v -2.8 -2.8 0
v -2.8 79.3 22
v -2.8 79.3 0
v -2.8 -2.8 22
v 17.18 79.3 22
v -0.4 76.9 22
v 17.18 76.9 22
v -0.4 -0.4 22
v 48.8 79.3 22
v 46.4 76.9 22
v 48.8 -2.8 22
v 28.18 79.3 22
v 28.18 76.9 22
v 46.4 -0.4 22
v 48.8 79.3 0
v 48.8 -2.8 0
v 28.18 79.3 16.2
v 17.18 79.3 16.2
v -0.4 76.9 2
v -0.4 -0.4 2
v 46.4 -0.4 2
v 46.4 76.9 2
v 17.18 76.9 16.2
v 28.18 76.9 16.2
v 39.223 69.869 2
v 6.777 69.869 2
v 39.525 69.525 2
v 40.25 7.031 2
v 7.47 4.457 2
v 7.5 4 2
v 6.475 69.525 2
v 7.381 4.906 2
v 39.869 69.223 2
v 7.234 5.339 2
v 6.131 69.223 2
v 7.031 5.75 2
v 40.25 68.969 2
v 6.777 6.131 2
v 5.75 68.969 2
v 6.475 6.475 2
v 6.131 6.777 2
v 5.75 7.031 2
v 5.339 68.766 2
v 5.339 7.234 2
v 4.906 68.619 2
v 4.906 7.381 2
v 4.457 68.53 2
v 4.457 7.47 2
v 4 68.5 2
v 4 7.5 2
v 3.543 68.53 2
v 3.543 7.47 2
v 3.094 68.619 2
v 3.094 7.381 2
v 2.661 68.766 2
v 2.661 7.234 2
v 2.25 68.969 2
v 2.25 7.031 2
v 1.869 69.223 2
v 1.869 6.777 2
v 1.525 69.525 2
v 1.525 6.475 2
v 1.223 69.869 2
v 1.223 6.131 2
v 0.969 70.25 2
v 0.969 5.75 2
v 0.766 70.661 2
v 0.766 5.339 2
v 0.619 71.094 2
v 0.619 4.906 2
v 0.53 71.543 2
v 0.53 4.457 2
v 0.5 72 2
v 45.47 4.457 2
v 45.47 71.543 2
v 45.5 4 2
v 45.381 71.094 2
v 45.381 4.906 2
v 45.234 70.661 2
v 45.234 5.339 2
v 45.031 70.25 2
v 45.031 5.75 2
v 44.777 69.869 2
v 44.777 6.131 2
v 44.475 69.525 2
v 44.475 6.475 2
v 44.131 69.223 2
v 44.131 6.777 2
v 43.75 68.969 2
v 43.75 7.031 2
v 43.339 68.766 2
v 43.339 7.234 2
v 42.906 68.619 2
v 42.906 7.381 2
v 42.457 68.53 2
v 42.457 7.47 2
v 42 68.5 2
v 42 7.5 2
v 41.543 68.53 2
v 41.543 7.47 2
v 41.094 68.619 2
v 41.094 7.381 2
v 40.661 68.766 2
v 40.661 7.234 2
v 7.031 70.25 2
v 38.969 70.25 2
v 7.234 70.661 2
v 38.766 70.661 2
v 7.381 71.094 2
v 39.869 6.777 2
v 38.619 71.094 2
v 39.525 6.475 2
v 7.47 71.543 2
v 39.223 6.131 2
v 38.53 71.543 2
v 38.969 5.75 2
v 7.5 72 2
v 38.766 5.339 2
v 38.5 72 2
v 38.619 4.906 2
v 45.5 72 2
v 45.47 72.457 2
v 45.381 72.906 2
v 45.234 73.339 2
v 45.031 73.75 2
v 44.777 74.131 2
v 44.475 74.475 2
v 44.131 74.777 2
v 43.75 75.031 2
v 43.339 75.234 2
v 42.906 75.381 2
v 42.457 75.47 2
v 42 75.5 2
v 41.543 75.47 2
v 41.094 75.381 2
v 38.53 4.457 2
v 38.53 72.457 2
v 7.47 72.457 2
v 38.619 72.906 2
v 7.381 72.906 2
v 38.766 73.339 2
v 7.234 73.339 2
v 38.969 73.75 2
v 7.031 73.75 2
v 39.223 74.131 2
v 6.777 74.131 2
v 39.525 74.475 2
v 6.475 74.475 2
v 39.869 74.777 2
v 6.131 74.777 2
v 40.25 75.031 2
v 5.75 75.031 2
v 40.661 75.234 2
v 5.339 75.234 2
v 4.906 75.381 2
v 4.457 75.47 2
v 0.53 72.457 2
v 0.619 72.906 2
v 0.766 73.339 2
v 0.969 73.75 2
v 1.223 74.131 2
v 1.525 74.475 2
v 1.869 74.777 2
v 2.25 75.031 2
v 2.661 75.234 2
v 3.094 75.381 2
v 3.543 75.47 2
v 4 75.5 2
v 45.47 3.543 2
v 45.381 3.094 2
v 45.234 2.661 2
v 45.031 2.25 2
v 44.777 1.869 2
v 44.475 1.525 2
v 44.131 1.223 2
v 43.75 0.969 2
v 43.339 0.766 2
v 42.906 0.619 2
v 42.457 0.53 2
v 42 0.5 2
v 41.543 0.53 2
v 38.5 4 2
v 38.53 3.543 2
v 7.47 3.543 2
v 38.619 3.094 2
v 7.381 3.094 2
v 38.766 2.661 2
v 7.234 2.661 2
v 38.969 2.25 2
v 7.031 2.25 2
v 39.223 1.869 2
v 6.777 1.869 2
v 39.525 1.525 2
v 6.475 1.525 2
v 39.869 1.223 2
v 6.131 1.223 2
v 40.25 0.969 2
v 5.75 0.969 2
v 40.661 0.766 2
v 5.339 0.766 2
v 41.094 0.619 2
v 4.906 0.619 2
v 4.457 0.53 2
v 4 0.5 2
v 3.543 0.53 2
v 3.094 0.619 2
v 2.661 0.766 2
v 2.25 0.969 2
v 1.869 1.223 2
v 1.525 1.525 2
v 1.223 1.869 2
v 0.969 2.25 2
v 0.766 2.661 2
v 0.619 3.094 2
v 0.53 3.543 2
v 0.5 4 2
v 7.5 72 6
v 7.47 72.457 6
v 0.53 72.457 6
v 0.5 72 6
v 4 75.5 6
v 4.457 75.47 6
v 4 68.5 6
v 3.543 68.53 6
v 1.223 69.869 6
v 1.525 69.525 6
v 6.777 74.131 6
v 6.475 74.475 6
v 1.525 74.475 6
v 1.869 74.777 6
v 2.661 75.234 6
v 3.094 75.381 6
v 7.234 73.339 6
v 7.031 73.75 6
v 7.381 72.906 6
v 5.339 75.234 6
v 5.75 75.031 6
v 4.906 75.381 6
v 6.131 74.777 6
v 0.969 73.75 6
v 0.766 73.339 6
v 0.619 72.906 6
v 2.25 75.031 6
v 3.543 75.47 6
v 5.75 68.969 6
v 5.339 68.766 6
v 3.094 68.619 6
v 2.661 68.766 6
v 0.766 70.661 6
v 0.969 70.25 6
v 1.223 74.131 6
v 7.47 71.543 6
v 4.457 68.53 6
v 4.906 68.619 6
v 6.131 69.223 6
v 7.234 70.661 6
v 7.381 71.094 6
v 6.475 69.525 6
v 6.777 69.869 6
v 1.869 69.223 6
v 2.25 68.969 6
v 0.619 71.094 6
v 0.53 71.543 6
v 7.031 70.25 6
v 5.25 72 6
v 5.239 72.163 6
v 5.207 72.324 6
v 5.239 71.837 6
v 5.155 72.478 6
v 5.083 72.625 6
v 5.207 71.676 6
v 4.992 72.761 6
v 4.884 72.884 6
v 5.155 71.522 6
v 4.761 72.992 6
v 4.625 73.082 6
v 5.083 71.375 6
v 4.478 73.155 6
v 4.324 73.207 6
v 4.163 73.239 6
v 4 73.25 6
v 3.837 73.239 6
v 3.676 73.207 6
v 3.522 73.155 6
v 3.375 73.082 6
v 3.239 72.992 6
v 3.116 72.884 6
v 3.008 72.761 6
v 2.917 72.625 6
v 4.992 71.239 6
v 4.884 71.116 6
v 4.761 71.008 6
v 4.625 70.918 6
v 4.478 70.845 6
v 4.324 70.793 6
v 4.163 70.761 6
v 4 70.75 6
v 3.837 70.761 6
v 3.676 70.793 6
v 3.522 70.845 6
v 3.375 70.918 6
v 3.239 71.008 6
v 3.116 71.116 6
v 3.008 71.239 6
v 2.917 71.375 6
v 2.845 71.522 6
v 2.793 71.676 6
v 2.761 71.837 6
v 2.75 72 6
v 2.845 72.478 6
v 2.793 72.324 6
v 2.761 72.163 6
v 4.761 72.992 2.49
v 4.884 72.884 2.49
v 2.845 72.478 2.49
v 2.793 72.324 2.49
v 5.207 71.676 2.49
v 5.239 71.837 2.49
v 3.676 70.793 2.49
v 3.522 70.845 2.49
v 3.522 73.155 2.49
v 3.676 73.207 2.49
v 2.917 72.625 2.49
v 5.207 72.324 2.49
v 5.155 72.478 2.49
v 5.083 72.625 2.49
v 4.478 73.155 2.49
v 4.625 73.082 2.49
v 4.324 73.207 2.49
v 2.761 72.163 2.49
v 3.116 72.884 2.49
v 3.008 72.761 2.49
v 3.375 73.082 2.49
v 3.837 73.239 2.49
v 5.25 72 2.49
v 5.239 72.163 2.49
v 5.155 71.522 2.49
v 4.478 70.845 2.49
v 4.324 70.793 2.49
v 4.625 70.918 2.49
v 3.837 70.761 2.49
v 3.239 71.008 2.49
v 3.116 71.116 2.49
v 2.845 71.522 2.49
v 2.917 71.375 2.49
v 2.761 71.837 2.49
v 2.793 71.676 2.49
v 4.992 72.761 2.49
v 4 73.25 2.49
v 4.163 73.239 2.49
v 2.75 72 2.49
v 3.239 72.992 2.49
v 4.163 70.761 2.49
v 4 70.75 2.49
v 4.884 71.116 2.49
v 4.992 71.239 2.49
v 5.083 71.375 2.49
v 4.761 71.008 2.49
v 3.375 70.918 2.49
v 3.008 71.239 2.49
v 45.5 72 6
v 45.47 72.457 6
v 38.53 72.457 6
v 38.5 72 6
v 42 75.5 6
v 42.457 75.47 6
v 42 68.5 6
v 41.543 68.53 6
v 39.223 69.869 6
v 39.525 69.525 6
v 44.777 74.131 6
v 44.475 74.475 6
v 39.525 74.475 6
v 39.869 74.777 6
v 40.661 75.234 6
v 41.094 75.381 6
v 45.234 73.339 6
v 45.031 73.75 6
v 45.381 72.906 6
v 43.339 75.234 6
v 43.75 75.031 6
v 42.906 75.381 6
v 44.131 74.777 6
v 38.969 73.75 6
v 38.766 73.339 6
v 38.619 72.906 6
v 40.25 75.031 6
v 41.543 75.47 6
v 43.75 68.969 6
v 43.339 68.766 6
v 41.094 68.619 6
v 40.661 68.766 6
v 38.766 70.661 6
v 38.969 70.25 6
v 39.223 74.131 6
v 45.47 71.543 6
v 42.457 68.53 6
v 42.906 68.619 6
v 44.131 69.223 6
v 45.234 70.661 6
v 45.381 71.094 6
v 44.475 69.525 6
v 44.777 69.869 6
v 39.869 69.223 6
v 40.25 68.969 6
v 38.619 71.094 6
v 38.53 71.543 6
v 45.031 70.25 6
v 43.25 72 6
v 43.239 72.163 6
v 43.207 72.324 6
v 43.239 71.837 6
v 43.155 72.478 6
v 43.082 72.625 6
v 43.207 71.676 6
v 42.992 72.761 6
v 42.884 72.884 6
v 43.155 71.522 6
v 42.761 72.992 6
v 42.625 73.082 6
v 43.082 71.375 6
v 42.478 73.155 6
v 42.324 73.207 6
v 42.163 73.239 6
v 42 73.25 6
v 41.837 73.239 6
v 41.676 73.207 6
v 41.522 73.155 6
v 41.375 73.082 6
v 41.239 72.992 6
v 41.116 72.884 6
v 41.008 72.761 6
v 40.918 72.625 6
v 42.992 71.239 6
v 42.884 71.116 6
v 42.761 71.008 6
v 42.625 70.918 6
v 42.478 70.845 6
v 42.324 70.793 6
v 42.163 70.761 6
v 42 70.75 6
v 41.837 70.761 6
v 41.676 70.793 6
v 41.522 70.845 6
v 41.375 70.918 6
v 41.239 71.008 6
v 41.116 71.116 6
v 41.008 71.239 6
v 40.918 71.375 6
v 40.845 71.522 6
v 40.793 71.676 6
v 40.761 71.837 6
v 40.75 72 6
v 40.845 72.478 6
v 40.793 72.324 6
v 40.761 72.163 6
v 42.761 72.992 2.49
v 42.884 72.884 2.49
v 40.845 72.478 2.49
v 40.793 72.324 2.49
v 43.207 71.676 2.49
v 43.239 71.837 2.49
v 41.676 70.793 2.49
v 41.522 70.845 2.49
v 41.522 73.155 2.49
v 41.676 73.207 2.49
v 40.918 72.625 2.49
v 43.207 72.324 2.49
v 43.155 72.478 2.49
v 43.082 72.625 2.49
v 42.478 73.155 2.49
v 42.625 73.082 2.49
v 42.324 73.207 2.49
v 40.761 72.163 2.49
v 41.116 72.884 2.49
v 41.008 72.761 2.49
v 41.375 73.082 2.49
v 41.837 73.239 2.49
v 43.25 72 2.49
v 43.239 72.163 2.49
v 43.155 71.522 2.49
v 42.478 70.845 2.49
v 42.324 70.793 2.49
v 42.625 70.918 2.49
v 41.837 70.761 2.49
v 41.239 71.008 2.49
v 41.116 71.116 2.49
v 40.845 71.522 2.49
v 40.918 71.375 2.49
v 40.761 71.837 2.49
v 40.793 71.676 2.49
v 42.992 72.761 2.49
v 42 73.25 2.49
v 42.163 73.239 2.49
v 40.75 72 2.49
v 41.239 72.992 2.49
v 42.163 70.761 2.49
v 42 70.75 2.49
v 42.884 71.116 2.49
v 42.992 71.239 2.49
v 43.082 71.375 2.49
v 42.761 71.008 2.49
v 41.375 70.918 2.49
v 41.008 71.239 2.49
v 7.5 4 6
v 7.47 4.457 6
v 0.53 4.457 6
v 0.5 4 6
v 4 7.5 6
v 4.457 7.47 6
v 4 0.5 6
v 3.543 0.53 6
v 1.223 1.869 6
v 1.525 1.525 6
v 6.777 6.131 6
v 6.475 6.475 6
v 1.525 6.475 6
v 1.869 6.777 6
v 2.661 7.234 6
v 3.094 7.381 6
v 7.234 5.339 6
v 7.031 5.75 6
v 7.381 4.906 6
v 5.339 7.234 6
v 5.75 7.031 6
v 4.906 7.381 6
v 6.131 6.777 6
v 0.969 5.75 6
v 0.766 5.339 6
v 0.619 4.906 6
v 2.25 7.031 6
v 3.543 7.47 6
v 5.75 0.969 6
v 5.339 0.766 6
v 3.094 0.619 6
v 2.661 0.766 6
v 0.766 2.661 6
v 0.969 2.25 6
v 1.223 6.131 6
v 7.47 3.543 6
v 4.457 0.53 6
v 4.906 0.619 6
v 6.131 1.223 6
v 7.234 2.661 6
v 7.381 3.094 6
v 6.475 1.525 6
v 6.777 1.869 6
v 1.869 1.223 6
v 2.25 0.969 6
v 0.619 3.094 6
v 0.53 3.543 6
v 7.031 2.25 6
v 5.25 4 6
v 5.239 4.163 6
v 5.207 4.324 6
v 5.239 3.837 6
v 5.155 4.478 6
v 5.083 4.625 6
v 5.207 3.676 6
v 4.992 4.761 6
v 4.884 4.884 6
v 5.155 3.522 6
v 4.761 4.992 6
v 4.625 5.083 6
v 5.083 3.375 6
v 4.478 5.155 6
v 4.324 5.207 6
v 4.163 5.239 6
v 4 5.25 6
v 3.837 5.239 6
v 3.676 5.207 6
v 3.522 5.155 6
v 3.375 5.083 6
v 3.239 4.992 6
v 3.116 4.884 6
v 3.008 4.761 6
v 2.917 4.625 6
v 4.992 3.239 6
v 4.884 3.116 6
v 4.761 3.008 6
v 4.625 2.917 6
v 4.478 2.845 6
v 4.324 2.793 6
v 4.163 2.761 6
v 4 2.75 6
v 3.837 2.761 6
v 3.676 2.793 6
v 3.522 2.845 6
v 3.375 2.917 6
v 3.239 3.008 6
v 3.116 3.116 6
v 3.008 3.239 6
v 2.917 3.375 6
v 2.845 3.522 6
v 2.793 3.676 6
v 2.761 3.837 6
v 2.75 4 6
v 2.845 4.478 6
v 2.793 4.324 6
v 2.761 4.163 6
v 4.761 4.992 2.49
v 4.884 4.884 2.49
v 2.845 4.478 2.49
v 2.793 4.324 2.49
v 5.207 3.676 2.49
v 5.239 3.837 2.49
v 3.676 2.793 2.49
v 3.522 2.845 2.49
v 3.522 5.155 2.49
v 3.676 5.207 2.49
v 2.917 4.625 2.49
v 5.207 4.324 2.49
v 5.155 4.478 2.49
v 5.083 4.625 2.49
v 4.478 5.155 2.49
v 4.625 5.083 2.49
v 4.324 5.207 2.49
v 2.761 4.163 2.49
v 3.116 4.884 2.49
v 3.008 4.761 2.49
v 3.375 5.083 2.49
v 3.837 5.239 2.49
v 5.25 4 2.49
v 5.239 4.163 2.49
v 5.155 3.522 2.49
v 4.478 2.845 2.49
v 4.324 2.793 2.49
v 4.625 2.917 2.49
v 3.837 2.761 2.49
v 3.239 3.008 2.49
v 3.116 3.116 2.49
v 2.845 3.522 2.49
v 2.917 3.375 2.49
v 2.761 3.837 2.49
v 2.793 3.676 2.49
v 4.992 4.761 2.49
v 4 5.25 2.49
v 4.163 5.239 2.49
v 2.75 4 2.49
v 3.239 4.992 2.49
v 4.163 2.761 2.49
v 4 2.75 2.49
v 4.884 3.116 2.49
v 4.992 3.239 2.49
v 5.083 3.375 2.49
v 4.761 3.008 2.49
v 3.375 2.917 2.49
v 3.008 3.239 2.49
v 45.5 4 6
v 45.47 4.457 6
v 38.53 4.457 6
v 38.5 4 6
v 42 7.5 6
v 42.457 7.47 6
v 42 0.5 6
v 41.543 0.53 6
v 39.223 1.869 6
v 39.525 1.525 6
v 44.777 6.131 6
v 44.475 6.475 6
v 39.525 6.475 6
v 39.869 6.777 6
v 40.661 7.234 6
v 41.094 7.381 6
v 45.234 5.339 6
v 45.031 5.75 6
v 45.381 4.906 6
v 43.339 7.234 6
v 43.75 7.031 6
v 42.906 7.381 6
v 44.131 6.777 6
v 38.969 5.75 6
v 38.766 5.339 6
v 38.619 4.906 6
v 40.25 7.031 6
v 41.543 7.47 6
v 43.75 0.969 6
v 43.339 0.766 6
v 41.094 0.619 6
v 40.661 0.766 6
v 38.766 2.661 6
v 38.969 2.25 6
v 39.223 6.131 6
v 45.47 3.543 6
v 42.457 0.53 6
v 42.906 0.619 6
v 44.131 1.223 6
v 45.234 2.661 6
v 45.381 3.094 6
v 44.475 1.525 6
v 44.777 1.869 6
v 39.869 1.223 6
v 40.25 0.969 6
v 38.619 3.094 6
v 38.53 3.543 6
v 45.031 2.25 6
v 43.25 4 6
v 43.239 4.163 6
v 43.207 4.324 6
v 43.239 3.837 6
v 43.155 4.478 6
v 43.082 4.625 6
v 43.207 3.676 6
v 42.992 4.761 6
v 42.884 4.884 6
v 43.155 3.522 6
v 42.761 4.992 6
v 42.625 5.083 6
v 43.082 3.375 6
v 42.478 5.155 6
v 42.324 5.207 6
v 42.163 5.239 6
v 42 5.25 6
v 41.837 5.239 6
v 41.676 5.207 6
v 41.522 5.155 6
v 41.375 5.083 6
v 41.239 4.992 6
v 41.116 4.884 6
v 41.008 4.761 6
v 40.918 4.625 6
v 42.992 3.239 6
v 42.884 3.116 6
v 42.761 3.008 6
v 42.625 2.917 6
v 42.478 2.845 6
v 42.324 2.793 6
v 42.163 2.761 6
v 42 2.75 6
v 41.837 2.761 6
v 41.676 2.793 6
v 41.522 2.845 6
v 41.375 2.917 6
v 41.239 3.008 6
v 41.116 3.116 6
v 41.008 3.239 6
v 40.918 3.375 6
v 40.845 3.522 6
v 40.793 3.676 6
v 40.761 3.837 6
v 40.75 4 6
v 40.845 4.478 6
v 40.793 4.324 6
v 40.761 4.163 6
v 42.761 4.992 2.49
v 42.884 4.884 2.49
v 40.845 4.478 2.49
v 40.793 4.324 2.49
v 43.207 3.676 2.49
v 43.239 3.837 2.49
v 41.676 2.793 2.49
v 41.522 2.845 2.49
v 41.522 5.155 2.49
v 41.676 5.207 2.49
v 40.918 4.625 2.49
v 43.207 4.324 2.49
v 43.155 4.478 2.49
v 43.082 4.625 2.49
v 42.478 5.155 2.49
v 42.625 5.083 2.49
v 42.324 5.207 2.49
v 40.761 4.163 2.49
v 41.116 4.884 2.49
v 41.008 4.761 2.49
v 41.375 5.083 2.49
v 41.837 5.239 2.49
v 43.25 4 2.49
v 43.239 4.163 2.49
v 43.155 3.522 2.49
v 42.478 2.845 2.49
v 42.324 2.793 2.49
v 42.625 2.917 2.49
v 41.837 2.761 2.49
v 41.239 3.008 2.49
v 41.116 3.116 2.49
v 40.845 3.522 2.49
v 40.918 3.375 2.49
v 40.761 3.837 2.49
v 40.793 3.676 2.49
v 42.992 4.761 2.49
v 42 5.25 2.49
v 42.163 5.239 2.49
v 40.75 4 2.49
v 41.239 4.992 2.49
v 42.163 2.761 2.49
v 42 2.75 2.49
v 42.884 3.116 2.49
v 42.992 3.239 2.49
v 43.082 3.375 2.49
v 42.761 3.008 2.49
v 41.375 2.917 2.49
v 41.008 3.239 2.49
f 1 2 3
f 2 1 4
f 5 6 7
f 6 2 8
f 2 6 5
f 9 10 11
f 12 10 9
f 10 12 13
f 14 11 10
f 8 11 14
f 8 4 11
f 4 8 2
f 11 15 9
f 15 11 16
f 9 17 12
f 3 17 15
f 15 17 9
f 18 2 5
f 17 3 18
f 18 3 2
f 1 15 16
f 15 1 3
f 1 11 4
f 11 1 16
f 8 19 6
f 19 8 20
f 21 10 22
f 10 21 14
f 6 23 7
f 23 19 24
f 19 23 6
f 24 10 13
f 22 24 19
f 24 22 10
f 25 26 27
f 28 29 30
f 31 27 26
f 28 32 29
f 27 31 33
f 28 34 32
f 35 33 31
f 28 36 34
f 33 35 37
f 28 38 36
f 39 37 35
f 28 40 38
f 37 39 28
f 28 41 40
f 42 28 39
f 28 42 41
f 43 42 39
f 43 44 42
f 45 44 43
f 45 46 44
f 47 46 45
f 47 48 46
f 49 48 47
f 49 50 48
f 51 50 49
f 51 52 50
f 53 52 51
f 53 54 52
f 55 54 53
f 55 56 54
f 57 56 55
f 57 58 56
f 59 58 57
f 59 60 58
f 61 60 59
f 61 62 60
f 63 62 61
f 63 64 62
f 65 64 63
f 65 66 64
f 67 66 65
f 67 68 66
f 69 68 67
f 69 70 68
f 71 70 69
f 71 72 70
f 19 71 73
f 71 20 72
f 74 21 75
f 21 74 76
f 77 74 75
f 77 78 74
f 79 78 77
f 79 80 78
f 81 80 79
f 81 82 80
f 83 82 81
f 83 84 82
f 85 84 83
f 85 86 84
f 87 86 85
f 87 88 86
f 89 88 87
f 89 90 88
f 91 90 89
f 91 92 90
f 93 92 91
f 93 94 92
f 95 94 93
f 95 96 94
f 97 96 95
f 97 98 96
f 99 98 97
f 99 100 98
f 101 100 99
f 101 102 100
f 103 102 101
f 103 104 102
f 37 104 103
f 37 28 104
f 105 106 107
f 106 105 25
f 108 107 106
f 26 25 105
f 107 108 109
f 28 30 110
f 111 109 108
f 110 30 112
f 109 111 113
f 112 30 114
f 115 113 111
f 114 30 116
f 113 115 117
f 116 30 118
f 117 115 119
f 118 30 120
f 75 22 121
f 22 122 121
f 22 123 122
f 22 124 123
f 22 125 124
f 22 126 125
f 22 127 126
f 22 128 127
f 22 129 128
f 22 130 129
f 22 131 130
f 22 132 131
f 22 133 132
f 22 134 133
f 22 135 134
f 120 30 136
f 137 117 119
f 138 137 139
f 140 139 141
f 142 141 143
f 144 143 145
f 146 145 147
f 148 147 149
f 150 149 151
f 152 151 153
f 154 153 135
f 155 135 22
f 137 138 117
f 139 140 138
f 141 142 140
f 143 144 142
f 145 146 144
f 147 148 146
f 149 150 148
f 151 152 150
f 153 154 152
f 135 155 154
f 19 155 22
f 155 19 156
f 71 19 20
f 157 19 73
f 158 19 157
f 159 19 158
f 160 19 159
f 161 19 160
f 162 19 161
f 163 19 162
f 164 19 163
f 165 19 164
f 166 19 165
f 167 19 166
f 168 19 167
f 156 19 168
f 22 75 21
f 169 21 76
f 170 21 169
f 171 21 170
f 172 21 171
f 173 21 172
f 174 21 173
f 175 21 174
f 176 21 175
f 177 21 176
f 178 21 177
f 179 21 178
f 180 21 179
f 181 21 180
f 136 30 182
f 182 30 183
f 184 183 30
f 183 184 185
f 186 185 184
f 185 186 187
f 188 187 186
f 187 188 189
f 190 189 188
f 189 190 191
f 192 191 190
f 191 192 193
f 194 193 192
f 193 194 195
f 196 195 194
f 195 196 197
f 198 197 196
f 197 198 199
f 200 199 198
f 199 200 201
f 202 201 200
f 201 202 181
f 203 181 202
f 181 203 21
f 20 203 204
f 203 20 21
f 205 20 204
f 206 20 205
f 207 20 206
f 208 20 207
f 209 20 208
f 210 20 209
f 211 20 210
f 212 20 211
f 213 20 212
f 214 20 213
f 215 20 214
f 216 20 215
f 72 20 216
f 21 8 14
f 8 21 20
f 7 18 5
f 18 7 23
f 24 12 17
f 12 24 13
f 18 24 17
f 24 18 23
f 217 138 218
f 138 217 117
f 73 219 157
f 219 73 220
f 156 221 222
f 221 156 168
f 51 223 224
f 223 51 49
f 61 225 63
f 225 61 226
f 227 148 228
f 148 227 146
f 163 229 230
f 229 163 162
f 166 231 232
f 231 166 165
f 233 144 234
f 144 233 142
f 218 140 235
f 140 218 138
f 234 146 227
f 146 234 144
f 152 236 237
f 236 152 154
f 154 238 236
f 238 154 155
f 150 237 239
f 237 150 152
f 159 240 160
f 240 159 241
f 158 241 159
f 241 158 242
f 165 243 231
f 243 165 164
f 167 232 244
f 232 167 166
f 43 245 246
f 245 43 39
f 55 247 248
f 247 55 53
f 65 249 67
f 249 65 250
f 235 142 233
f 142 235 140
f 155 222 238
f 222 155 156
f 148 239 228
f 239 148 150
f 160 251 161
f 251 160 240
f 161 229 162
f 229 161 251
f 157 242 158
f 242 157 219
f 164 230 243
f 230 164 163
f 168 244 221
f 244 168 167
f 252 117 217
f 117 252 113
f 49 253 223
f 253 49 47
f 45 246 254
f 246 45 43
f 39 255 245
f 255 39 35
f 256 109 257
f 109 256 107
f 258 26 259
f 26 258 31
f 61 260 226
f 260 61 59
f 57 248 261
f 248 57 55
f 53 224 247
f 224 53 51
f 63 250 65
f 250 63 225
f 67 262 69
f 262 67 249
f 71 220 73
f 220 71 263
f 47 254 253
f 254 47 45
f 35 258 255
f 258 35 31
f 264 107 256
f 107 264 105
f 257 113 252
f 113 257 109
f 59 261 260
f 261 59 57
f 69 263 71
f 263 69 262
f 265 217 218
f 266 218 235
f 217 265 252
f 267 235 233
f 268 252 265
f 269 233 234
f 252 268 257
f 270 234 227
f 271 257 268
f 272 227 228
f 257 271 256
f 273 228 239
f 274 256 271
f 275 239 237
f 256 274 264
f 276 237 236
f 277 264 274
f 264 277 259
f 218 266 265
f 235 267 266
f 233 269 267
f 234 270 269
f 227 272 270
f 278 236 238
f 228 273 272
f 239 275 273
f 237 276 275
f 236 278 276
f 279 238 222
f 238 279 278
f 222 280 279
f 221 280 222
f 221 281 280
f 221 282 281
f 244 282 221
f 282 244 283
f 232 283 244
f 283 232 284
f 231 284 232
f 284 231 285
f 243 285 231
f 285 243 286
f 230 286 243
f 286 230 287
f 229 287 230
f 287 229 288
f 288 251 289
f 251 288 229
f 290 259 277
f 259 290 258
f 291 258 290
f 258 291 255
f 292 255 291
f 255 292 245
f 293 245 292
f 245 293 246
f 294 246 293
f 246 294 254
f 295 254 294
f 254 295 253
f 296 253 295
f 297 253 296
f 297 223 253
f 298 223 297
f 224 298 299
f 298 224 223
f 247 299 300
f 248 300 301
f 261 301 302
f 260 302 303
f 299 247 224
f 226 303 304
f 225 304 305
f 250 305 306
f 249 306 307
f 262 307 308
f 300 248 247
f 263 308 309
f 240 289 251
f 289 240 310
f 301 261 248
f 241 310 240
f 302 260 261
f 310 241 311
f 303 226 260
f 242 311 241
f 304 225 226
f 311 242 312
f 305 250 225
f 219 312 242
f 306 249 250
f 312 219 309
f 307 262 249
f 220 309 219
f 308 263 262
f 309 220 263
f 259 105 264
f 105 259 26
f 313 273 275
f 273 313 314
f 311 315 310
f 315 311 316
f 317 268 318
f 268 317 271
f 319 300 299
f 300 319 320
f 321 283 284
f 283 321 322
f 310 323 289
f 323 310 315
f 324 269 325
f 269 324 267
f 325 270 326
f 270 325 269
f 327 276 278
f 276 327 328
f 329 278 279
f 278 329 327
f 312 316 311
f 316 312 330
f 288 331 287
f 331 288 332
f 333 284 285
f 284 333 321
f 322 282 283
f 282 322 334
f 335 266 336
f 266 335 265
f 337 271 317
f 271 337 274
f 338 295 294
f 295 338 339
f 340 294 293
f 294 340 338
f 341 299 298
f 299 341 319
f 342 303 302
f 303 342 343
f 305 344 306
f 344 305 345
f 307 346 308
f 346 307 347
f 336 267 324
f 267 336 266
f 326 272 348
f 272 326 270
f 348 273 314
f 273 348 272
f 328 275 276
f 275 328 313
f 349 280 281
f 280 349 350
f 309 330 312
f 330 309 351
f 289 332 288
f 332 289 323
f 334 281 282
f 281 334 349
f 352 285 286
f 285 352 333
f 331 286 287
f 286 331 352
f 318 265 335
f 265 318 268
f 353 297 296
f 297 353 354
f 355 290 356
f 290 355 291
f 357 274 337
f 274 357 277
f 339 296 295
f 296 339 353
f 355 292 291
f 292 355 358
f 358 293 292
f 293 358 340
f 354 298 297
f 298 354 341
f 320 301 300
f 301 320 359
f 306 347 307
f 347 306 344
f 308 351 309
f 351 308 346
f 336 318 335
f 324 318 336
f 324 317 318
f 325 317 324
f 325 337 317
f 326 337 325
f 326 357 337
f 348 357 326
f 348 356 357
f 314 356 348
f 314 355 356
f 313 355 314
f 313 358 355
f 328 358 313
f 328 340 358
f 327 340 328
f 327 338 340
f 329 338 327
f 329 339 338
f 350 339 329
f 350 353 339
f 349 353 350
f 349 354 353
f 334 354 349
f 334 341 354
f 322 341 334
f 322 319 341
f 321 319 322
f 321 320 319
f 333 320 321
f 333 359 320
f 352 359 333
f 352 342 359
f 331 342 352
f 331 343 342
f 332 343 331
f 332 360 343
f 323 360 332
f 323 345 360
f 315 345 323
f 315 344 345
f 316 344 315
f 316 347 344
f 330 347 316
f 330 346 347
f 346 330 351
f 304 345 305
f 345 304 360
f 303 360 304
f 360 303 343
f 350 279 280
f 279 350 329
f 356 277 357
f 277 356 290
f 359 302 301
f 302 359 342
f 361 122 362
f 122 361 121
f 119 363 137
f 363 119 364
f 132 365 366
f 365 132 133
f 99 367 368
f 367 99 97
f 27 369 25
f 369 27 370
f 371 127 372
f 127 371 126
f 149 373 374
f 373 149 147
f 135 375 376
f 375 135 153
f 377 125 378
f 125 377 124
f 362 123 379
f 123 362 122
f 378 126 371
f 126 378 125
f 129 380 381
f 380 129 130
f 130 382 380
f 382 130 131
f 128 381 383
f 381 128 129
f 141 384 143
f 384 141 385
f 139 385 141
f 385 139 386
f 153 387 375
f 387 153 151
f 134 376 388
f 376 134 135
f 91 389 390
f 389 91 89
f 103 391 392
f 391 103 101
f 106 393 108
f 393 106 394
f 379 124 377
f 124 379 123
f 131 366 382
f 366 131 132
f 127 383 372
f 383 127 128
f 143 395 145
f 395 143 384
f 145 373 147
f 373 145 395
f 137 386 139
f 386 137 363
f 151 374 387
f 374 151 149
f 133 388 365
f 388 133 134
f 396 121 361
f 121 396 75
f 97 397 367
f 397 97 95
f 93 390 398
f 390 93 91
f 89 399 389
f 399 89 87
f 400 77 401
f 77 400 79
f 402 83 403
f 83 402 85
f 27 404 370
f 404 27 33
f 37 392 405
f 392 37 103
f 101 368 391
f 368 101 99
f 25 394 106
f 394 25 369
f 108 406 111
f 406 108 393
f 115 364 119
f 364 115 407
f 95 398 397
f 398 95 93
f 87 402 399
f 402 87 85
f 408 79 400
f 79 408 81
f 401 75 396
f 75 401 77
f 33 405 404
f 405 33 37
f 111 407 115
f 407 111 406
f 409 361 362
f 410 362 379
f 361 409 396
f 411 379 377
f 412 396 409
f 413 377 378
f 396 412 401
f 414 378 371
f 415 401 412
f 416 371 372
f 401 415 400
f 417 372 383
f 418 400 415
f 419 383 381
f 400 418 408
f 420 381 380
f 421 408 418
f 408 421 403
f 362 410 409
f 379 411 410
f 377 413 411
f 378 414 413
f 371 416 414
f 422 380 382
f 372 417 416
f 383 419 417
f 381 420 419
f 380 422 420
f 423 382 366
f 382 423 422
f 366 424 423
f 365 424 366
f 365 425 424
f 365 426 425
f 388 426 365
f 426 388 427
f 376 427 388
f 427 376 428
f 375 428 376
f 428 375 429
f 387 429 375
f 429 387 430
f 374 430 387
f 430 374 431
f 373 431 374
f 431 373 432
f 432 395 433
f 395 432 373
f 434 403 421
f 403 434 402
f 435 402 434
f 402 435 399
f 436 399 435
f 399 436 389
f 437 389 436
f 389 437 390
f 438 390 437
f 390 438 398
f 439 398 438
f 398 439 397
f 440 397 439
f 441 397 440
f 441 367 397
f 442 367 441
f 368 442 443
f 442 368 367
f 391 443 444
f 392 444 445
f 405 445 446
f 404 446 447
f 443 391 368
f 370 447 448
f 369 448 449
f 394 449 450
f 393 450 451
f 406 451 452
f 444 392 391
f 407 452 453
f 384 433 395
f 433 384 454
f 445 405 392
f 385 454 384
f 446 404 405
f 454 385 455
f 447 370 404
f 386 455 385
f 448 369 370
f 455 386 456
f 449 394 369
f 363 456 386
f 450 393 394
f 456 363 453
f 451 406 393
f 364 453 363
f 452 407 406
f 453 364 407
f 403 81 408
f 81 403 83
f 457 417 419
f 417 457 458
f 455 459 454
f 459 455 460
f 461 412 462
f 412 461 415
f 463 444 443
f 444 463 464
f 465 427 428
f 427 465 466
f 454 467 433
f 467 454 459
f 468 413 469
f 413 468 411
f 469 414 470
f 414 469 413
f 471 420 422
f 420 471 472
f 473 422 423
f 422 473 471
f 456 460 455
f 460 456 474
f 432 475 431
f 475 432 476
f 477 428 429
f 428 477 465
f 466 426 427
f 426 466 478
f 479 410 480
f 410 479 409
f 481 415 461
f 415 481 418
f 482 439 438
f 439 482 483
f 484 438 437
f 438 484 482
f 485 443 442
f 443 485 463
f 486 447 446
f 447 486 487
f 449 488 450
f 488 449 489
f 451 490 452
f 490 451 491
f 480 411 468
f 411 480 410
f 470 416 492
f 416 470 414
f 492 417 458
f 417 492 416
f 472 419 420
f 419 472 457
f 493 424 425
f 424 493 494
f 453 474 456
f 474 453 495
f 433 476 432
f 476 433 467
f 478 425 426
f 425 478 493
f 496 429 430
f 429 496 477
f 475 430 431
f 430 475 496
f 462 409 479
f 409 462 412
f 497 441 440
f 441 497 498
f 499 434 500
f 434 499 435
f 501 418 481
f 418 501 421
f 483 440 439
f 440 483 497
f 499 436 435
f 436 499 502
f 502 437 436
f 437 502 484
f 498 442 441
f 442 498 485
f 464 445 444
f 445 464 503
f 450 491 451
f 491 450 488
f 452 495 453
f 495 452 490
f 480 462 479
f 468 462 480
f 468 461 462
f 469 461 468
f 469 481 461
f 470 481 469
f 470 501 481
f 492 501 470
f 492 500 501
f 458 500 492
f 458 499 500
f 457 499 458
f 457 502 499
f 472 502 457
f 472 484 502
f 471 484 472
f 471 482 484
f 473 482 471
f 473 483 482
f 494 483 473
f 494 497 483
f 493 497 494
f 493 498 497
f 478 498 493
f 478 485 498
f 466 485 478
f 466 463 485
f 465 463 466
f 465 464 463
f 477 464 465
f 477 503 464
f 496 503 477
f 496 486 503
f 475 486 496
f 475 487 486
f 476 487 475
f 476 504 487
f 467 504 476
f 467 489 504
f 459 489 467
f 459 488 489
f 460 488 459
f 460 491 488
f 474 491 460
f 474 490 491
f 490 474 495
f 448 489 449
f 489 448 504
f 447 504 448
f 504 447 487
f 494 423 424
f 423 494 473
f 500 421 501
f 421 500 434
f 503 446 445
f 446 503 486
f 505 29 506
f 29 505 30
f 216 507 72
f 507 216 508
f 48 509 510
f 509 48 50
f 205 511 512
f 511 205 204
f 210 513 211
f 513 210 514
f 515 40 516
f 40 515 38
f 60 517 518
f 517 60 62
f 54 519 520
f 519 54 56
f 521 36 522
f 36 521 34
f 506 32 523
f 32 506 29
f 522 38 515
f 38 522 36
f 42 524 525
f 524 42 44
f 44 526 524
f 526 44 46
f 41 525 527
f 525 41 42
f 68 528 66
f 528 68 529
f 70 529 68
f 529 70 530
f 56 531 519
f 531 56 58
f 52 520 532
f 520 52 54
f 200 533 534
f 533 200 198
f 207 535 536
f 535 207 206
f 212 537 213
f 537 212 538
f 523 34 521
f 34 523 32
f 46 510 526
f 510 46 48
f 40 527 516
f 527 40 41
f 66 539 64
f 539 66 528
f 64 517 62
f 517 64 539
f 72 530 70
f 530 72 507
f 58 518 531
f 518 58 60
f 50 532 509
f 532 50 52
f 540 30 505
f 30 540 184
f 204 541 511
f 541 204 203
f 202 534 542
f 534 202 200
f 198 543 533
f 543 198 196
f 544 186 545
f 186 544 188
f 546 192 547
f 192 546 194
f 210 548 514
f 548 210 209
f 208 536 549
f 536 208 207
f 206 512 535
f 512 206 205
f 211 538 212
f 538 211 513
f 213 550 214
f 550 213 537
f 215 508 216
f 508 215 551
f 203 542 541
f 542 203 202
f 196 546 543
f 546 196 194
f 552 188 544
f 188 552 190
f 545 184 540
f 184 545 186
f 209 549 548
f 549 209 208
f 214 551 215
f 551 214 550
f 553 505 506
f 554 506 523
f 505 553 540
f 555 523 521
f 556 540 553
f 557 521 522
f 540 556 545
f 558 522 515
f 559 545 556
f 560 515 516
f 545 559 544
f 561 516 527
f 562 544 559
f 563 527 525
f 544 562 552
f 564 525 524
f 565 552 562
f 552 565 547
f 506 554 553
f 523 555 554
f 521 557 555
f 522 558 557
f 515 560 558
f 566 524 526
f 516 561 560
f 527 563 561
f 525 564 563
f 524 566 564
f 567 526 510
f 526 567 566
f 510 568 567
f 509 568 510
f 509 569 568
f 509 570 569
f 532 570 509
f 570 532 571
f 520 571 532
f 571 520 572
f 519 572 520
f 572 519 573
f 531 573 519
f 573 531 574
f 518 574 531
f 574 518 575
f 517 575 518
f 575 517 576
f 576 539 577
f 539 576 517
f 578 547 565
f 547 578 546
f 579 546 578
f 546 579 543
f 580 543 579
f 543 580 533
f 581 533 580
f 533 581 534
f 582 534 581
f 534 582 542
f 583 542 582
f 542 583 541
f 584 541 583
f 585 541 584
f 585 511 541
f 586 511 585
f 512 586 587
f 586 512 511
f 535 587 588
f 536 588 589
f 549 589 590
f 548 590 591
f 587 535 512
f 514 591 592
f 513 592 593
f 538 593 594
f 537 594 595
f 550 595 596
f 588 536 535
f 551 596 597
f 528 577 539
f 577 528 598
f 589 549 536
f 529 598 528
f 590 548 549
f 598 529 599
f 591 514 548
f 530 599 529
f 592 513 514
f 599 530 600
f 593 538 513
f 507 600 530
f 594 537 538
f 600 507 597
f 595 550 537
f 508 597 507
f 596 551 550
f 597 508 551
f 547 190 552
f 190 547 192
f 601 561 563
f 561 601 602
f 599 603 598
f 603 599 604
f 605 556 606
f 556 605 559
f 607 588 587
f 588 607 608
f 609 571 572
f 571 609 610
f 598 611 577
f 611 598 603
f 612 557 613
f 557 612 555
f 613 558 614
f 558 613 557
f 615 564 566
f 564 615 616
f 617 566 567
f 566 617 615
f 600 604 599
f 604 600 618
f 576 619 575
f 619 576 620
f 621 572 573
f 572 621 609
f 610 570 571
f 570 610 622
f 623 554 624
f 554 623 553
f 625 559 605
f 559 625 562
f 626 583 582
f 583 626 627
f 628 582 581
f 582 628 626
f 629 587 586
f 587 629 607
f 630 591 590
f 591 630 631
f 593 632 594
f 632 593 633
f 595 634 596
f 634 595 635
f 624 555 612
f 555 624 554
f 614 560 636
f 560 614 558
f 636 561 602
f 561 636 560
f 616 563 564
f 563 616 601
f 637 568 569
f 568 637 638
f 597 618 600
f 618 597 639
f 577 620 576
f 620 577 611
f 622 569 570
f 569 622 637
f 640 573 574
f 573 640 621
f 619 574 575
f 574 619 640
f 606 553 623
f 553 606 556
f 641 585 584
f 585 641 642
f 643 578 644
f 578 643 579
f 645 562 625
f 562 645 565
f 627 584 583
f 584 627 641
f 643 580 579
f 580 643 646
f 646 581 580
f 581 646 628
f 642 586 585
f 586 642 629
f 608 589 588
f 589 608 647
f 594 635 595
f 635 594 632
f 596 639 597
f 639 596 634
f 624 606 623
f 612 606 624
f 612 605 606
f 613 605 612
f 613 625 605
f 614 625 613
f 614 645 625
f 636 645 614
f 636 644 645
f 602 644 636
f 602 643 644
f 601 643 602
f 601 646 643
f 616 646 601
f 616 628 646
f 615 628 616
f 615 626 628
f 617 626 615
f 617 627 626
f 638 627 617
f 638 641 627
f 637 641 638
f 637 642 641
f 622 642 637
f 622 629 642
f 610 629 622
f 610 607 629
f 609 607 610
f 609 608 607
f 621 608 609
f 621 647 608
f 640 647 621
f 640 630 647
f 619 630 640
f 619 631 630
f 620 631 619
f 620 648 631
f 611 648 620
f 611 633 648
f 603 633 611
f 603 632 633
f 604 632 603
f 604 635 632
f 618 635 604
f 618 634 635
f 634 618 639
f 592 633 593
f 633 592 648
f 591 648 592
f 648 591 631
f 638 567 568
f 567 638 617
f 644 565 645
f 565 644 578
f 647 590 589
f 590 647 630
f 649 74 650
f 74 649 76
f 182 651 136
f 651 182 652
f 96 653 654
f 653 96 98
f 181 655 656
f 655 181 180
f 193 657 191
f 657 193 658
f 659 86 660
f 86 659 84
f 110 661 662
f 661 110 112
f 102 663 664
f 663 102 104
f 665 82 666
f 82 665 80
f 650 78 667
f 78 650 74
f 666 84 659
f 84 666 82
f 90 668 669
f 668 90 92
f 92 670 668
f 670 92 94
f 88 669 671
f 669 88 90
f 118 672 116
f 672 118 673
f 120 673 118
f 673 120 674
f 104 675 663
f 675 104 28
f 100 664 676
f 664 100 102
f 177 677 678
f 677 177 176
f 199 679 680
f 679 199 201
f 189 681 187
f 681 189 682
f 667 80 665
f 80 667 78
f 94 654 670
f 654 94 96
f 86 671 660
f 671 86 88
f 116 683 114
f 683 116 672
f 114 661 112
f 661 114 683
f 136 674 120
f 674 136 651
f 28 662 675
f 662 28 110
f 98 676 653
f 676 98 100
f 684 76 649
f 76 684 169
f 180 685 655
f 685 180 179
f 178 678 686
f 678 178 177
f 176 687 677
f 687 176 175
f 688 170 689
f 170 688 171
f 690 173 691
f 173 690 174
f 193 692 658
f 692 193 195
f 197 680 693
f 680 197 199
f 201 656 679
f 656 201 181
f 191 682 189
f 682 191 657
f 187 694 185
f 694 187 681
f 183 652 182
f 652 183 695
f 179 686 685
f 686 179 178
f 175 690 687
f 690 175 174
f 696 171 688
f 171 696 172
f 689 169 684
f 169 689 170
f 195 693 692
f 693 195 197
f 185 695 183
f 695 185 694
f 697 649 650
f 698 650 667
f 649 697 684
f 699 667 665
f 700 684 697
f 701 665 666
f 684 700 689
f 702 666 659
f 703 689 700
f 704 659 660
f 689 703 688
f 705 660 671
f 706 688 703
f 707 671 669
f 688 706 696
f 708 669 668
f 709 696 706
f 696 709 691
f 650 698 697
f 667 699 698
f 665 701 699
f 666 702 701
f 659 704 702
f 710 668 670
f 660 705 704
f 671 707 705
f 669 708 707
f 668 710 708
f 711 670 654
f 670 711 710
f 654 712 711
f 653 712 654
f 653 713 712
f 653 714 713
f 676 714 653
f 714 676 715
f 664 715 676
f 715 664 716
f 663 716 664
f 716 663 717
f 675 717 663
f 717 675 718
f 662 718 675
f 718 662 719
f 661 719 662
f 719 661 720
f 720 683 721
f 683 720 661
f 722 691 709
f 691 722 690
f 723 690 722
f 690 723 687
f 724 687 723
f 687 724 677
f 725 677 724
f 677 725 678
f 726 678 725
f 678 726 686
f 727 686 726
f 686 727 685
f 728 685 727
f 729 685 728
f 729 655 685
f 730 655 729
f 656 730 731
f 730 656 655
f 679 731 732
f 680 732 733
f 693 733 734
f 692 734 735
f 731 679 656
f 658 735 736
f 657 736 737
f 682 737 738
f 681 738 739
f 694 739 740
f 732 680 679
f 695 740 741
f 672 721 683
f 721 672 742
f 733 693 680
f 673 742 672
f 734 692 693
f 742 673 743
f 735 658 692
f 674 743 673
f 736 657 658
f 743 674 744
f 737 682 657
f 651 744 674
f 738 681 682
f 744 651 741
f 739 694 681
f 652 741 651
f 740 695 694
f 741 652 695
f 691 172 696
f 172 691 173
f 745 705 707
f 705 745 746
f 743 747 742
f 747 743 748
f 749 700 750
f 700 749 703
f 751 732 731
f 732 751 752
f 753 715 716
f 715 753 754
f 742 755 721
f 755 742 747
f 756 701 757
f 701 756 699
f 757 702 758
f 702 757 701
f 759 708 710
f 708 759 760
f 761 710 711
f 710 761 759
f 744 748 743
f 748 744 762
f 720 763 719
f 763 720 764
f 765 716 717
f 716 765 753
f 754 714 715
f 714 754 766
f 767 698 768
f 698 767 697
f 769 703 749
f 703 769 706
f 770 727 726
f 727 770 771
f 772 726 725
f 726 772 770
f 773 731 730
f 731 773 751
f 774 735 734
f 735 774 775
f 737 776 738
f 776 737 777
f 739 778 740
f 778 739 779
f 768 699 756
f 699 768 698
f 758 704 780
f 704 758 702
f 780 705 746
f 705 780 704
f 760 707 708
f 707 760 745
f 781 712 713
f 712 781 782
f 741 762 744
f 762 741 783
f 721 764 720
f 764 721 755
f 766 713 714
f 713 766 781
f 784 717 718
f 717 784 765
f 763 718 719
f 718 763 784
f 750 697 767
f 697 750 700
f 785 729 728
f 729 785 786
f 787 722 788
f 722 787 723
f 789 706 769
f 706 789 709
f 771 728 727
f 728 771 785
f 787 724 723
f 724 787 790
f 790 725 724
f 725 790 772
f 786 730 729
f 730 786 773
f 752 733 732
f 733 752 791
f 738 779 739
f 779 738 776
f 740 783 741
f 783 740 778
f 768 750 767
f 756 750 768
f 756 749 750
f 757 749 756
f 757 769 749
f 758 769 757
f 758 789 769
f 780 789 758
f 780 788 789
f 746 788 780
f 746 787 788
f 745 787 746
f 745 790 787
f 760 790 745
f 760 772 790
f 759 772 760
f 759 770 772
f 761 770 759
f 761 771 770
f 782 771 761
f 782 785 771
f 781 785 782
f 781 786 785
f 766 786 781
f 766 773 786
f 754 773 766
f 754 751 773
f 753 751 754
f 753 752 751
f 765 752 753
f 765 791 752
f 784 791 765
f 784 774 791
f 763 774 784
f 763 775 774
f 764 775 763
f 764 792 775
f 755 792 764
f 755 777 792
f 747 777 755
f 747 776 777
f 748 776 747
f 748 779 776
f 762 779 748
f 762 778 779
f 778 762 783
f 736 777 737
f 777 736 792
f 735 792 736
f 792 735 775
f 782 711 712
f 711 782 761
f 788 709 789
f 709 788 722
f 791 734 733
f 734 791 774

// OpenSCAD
// Sigil Rev A: fit-test tray (OpenSCAD).
//
// A quick FDM print to prove the carrier board, DevKit socket rows and USB
// opening fit before the real 45-degree wedge case is designed. It has no lid,
// display window or joystick hole yet.
//
// All board dimensions come from Sigil_EInk.kicad_pcb (Edge.Cuts 100..146 x
// 99.5..176, four M3 holes) and the DevKit footprint in Sigil.pretty. Positions
// below are board-local: origin at the board's bottom-left corner, viewed from
// above with the USB end at the top, the same view KiCad shows. KiCad's y axis
// points down, so y_local = 76.5 - (y_kicad - 99.5).
//
// Everything marked "VERIFY" is a guess to be checked with calipers against the
// real parts, not a measurement.

$fn = 48;

// ---- Board (from KiCad) ----------------------------------------------------
pcb_w = 46;          // Edge.Cuts x 100..146
pcb_l = 76.5;        // Edge.Cuts y 99.5..176
pcb_t = 1.6;         // VERIFY: ordered board thickness
hole_d = 3.2;        // MountingHole_3.2mm_M3
holes_kicad = [[104, 104], [142, 104], [104, 172], [142, 172]];

// ---- DevKit (owner's ruler measurements, 2026-09-28) -------------------------
// Fab outline in KiCad: x 109.98..135.38, y 100.0..153.98 (25.4 x 53.975 mm).
kit_x0 = 109.98 - 100;
kit_w  = 25.4;
kit_y_usb = 76.5 - (100.0 - 99.5);   // USB end, local y
kit_l  = 53.975;
socket_h = 8.5;      // VERIFY: female header body height
kit_pcb_t = 1.6;     // VERIFY
usb_w = 8.0;         // VERIFY: micro-USB shell width
usb_h = 3.2;         // VERIFY: micro-USB shell height
usb_x_local = kit_x0 + kit_w / 2;    // centred on the DevKit

// ---- Case ------------------------------------------------------------------
clear = 0.4;         // gap around the board; FDM, tune per printer
wall = 2.4;
floor_t = 2.0;
post_h = 4.0;        // lifts the board so solder tails (about 2.5 mm) clear the floor
post_d = 7.0;
screw_pilot_d = 2.5; // self-tapping M3 into PLA/PETG; use 4.0 for heat-set inserts
wall_h = 20;         // tall enough to show the DevKit and USB jack inside
usb_slot_margin = 1.5;   // extra room around the USB shell in the wall opening

show_ghosts = true;  // translucent board/DevKit for preview only; not printed

inner_w = pcb_w + 2 * clear;
inner_l = pcb_l + 2 * clear;
outer_w = inner_w + 2 * wall;
outer_l = inner_l + 2 * wall;

function to_local(p) = [p[0] - 100, 76.5 - (p[1] - 99.5)];

board_z = floor_t + post_h;
kit_bottom_z = board_z + pcb_t + socket_h;
usb_center_z = kit_bottom_z + kit_pcb_t + usb_h / 2;

module tray() {
    difference() {
        union() {
            // Shell, outer origin at (-clear - wall, -clear - wall) so the board
            // sits at local (0,0).
            translate([-clear - wall, -clear - wall, 0])
                cube([outer_w, outer_l, floor_t + wall_h]);
        }
        // Cavity
        translate([-clear, -clear, floor_t])
            cube([inner_w, inner_l, wall_h + 1]);
        // USB opening in the top (USB-end) wall
        translate([usb_x_local - (usb_w + 2 * usb_slot_margin) / 2,
                   pcb_l + clear - 0.01,
                   usb_center_z - (usb_h + 2 * usb_slot_margin) / 2])
            cube([usb_w + 2 * usb_slot_margin, wall + 0.02, usb_h + 2 * usb_slot_margin]);
    }
    // Screw posts
    for (h = holes_kicad) {
        p = to_local(h);
        translate([p[0], p[1], floor_t - 0.01])
            difference() {
                cylinder(d = post_d, h = post_h + 0.01);
                translate([0, 0, 0.5]) cylinder(d = screw_pilot_d, h = post_h + 1);
            }
    }
}

module ghosts() {
    if (show_ghosts) {
        // Carrier PCB
        %translate([0, 0, board_z]) cube([pcb_w, pcb_l, pcb_t]);
        // DevKit, raised on the sockets
        %translate([kit_x0, kit_y_usb - kit_l, kit_bottom_z]) cube([kit_w, kit_l, kit_pcb_t + 2]);
        // USB shell
        %translate([usb_x_local - usb_w / 2, kit_y_usb - 1, kit_bottom_z + kit_pcb_t])
            cube([usb_w, 5, usb_h]);
    }
}

tray();
ghosts();
